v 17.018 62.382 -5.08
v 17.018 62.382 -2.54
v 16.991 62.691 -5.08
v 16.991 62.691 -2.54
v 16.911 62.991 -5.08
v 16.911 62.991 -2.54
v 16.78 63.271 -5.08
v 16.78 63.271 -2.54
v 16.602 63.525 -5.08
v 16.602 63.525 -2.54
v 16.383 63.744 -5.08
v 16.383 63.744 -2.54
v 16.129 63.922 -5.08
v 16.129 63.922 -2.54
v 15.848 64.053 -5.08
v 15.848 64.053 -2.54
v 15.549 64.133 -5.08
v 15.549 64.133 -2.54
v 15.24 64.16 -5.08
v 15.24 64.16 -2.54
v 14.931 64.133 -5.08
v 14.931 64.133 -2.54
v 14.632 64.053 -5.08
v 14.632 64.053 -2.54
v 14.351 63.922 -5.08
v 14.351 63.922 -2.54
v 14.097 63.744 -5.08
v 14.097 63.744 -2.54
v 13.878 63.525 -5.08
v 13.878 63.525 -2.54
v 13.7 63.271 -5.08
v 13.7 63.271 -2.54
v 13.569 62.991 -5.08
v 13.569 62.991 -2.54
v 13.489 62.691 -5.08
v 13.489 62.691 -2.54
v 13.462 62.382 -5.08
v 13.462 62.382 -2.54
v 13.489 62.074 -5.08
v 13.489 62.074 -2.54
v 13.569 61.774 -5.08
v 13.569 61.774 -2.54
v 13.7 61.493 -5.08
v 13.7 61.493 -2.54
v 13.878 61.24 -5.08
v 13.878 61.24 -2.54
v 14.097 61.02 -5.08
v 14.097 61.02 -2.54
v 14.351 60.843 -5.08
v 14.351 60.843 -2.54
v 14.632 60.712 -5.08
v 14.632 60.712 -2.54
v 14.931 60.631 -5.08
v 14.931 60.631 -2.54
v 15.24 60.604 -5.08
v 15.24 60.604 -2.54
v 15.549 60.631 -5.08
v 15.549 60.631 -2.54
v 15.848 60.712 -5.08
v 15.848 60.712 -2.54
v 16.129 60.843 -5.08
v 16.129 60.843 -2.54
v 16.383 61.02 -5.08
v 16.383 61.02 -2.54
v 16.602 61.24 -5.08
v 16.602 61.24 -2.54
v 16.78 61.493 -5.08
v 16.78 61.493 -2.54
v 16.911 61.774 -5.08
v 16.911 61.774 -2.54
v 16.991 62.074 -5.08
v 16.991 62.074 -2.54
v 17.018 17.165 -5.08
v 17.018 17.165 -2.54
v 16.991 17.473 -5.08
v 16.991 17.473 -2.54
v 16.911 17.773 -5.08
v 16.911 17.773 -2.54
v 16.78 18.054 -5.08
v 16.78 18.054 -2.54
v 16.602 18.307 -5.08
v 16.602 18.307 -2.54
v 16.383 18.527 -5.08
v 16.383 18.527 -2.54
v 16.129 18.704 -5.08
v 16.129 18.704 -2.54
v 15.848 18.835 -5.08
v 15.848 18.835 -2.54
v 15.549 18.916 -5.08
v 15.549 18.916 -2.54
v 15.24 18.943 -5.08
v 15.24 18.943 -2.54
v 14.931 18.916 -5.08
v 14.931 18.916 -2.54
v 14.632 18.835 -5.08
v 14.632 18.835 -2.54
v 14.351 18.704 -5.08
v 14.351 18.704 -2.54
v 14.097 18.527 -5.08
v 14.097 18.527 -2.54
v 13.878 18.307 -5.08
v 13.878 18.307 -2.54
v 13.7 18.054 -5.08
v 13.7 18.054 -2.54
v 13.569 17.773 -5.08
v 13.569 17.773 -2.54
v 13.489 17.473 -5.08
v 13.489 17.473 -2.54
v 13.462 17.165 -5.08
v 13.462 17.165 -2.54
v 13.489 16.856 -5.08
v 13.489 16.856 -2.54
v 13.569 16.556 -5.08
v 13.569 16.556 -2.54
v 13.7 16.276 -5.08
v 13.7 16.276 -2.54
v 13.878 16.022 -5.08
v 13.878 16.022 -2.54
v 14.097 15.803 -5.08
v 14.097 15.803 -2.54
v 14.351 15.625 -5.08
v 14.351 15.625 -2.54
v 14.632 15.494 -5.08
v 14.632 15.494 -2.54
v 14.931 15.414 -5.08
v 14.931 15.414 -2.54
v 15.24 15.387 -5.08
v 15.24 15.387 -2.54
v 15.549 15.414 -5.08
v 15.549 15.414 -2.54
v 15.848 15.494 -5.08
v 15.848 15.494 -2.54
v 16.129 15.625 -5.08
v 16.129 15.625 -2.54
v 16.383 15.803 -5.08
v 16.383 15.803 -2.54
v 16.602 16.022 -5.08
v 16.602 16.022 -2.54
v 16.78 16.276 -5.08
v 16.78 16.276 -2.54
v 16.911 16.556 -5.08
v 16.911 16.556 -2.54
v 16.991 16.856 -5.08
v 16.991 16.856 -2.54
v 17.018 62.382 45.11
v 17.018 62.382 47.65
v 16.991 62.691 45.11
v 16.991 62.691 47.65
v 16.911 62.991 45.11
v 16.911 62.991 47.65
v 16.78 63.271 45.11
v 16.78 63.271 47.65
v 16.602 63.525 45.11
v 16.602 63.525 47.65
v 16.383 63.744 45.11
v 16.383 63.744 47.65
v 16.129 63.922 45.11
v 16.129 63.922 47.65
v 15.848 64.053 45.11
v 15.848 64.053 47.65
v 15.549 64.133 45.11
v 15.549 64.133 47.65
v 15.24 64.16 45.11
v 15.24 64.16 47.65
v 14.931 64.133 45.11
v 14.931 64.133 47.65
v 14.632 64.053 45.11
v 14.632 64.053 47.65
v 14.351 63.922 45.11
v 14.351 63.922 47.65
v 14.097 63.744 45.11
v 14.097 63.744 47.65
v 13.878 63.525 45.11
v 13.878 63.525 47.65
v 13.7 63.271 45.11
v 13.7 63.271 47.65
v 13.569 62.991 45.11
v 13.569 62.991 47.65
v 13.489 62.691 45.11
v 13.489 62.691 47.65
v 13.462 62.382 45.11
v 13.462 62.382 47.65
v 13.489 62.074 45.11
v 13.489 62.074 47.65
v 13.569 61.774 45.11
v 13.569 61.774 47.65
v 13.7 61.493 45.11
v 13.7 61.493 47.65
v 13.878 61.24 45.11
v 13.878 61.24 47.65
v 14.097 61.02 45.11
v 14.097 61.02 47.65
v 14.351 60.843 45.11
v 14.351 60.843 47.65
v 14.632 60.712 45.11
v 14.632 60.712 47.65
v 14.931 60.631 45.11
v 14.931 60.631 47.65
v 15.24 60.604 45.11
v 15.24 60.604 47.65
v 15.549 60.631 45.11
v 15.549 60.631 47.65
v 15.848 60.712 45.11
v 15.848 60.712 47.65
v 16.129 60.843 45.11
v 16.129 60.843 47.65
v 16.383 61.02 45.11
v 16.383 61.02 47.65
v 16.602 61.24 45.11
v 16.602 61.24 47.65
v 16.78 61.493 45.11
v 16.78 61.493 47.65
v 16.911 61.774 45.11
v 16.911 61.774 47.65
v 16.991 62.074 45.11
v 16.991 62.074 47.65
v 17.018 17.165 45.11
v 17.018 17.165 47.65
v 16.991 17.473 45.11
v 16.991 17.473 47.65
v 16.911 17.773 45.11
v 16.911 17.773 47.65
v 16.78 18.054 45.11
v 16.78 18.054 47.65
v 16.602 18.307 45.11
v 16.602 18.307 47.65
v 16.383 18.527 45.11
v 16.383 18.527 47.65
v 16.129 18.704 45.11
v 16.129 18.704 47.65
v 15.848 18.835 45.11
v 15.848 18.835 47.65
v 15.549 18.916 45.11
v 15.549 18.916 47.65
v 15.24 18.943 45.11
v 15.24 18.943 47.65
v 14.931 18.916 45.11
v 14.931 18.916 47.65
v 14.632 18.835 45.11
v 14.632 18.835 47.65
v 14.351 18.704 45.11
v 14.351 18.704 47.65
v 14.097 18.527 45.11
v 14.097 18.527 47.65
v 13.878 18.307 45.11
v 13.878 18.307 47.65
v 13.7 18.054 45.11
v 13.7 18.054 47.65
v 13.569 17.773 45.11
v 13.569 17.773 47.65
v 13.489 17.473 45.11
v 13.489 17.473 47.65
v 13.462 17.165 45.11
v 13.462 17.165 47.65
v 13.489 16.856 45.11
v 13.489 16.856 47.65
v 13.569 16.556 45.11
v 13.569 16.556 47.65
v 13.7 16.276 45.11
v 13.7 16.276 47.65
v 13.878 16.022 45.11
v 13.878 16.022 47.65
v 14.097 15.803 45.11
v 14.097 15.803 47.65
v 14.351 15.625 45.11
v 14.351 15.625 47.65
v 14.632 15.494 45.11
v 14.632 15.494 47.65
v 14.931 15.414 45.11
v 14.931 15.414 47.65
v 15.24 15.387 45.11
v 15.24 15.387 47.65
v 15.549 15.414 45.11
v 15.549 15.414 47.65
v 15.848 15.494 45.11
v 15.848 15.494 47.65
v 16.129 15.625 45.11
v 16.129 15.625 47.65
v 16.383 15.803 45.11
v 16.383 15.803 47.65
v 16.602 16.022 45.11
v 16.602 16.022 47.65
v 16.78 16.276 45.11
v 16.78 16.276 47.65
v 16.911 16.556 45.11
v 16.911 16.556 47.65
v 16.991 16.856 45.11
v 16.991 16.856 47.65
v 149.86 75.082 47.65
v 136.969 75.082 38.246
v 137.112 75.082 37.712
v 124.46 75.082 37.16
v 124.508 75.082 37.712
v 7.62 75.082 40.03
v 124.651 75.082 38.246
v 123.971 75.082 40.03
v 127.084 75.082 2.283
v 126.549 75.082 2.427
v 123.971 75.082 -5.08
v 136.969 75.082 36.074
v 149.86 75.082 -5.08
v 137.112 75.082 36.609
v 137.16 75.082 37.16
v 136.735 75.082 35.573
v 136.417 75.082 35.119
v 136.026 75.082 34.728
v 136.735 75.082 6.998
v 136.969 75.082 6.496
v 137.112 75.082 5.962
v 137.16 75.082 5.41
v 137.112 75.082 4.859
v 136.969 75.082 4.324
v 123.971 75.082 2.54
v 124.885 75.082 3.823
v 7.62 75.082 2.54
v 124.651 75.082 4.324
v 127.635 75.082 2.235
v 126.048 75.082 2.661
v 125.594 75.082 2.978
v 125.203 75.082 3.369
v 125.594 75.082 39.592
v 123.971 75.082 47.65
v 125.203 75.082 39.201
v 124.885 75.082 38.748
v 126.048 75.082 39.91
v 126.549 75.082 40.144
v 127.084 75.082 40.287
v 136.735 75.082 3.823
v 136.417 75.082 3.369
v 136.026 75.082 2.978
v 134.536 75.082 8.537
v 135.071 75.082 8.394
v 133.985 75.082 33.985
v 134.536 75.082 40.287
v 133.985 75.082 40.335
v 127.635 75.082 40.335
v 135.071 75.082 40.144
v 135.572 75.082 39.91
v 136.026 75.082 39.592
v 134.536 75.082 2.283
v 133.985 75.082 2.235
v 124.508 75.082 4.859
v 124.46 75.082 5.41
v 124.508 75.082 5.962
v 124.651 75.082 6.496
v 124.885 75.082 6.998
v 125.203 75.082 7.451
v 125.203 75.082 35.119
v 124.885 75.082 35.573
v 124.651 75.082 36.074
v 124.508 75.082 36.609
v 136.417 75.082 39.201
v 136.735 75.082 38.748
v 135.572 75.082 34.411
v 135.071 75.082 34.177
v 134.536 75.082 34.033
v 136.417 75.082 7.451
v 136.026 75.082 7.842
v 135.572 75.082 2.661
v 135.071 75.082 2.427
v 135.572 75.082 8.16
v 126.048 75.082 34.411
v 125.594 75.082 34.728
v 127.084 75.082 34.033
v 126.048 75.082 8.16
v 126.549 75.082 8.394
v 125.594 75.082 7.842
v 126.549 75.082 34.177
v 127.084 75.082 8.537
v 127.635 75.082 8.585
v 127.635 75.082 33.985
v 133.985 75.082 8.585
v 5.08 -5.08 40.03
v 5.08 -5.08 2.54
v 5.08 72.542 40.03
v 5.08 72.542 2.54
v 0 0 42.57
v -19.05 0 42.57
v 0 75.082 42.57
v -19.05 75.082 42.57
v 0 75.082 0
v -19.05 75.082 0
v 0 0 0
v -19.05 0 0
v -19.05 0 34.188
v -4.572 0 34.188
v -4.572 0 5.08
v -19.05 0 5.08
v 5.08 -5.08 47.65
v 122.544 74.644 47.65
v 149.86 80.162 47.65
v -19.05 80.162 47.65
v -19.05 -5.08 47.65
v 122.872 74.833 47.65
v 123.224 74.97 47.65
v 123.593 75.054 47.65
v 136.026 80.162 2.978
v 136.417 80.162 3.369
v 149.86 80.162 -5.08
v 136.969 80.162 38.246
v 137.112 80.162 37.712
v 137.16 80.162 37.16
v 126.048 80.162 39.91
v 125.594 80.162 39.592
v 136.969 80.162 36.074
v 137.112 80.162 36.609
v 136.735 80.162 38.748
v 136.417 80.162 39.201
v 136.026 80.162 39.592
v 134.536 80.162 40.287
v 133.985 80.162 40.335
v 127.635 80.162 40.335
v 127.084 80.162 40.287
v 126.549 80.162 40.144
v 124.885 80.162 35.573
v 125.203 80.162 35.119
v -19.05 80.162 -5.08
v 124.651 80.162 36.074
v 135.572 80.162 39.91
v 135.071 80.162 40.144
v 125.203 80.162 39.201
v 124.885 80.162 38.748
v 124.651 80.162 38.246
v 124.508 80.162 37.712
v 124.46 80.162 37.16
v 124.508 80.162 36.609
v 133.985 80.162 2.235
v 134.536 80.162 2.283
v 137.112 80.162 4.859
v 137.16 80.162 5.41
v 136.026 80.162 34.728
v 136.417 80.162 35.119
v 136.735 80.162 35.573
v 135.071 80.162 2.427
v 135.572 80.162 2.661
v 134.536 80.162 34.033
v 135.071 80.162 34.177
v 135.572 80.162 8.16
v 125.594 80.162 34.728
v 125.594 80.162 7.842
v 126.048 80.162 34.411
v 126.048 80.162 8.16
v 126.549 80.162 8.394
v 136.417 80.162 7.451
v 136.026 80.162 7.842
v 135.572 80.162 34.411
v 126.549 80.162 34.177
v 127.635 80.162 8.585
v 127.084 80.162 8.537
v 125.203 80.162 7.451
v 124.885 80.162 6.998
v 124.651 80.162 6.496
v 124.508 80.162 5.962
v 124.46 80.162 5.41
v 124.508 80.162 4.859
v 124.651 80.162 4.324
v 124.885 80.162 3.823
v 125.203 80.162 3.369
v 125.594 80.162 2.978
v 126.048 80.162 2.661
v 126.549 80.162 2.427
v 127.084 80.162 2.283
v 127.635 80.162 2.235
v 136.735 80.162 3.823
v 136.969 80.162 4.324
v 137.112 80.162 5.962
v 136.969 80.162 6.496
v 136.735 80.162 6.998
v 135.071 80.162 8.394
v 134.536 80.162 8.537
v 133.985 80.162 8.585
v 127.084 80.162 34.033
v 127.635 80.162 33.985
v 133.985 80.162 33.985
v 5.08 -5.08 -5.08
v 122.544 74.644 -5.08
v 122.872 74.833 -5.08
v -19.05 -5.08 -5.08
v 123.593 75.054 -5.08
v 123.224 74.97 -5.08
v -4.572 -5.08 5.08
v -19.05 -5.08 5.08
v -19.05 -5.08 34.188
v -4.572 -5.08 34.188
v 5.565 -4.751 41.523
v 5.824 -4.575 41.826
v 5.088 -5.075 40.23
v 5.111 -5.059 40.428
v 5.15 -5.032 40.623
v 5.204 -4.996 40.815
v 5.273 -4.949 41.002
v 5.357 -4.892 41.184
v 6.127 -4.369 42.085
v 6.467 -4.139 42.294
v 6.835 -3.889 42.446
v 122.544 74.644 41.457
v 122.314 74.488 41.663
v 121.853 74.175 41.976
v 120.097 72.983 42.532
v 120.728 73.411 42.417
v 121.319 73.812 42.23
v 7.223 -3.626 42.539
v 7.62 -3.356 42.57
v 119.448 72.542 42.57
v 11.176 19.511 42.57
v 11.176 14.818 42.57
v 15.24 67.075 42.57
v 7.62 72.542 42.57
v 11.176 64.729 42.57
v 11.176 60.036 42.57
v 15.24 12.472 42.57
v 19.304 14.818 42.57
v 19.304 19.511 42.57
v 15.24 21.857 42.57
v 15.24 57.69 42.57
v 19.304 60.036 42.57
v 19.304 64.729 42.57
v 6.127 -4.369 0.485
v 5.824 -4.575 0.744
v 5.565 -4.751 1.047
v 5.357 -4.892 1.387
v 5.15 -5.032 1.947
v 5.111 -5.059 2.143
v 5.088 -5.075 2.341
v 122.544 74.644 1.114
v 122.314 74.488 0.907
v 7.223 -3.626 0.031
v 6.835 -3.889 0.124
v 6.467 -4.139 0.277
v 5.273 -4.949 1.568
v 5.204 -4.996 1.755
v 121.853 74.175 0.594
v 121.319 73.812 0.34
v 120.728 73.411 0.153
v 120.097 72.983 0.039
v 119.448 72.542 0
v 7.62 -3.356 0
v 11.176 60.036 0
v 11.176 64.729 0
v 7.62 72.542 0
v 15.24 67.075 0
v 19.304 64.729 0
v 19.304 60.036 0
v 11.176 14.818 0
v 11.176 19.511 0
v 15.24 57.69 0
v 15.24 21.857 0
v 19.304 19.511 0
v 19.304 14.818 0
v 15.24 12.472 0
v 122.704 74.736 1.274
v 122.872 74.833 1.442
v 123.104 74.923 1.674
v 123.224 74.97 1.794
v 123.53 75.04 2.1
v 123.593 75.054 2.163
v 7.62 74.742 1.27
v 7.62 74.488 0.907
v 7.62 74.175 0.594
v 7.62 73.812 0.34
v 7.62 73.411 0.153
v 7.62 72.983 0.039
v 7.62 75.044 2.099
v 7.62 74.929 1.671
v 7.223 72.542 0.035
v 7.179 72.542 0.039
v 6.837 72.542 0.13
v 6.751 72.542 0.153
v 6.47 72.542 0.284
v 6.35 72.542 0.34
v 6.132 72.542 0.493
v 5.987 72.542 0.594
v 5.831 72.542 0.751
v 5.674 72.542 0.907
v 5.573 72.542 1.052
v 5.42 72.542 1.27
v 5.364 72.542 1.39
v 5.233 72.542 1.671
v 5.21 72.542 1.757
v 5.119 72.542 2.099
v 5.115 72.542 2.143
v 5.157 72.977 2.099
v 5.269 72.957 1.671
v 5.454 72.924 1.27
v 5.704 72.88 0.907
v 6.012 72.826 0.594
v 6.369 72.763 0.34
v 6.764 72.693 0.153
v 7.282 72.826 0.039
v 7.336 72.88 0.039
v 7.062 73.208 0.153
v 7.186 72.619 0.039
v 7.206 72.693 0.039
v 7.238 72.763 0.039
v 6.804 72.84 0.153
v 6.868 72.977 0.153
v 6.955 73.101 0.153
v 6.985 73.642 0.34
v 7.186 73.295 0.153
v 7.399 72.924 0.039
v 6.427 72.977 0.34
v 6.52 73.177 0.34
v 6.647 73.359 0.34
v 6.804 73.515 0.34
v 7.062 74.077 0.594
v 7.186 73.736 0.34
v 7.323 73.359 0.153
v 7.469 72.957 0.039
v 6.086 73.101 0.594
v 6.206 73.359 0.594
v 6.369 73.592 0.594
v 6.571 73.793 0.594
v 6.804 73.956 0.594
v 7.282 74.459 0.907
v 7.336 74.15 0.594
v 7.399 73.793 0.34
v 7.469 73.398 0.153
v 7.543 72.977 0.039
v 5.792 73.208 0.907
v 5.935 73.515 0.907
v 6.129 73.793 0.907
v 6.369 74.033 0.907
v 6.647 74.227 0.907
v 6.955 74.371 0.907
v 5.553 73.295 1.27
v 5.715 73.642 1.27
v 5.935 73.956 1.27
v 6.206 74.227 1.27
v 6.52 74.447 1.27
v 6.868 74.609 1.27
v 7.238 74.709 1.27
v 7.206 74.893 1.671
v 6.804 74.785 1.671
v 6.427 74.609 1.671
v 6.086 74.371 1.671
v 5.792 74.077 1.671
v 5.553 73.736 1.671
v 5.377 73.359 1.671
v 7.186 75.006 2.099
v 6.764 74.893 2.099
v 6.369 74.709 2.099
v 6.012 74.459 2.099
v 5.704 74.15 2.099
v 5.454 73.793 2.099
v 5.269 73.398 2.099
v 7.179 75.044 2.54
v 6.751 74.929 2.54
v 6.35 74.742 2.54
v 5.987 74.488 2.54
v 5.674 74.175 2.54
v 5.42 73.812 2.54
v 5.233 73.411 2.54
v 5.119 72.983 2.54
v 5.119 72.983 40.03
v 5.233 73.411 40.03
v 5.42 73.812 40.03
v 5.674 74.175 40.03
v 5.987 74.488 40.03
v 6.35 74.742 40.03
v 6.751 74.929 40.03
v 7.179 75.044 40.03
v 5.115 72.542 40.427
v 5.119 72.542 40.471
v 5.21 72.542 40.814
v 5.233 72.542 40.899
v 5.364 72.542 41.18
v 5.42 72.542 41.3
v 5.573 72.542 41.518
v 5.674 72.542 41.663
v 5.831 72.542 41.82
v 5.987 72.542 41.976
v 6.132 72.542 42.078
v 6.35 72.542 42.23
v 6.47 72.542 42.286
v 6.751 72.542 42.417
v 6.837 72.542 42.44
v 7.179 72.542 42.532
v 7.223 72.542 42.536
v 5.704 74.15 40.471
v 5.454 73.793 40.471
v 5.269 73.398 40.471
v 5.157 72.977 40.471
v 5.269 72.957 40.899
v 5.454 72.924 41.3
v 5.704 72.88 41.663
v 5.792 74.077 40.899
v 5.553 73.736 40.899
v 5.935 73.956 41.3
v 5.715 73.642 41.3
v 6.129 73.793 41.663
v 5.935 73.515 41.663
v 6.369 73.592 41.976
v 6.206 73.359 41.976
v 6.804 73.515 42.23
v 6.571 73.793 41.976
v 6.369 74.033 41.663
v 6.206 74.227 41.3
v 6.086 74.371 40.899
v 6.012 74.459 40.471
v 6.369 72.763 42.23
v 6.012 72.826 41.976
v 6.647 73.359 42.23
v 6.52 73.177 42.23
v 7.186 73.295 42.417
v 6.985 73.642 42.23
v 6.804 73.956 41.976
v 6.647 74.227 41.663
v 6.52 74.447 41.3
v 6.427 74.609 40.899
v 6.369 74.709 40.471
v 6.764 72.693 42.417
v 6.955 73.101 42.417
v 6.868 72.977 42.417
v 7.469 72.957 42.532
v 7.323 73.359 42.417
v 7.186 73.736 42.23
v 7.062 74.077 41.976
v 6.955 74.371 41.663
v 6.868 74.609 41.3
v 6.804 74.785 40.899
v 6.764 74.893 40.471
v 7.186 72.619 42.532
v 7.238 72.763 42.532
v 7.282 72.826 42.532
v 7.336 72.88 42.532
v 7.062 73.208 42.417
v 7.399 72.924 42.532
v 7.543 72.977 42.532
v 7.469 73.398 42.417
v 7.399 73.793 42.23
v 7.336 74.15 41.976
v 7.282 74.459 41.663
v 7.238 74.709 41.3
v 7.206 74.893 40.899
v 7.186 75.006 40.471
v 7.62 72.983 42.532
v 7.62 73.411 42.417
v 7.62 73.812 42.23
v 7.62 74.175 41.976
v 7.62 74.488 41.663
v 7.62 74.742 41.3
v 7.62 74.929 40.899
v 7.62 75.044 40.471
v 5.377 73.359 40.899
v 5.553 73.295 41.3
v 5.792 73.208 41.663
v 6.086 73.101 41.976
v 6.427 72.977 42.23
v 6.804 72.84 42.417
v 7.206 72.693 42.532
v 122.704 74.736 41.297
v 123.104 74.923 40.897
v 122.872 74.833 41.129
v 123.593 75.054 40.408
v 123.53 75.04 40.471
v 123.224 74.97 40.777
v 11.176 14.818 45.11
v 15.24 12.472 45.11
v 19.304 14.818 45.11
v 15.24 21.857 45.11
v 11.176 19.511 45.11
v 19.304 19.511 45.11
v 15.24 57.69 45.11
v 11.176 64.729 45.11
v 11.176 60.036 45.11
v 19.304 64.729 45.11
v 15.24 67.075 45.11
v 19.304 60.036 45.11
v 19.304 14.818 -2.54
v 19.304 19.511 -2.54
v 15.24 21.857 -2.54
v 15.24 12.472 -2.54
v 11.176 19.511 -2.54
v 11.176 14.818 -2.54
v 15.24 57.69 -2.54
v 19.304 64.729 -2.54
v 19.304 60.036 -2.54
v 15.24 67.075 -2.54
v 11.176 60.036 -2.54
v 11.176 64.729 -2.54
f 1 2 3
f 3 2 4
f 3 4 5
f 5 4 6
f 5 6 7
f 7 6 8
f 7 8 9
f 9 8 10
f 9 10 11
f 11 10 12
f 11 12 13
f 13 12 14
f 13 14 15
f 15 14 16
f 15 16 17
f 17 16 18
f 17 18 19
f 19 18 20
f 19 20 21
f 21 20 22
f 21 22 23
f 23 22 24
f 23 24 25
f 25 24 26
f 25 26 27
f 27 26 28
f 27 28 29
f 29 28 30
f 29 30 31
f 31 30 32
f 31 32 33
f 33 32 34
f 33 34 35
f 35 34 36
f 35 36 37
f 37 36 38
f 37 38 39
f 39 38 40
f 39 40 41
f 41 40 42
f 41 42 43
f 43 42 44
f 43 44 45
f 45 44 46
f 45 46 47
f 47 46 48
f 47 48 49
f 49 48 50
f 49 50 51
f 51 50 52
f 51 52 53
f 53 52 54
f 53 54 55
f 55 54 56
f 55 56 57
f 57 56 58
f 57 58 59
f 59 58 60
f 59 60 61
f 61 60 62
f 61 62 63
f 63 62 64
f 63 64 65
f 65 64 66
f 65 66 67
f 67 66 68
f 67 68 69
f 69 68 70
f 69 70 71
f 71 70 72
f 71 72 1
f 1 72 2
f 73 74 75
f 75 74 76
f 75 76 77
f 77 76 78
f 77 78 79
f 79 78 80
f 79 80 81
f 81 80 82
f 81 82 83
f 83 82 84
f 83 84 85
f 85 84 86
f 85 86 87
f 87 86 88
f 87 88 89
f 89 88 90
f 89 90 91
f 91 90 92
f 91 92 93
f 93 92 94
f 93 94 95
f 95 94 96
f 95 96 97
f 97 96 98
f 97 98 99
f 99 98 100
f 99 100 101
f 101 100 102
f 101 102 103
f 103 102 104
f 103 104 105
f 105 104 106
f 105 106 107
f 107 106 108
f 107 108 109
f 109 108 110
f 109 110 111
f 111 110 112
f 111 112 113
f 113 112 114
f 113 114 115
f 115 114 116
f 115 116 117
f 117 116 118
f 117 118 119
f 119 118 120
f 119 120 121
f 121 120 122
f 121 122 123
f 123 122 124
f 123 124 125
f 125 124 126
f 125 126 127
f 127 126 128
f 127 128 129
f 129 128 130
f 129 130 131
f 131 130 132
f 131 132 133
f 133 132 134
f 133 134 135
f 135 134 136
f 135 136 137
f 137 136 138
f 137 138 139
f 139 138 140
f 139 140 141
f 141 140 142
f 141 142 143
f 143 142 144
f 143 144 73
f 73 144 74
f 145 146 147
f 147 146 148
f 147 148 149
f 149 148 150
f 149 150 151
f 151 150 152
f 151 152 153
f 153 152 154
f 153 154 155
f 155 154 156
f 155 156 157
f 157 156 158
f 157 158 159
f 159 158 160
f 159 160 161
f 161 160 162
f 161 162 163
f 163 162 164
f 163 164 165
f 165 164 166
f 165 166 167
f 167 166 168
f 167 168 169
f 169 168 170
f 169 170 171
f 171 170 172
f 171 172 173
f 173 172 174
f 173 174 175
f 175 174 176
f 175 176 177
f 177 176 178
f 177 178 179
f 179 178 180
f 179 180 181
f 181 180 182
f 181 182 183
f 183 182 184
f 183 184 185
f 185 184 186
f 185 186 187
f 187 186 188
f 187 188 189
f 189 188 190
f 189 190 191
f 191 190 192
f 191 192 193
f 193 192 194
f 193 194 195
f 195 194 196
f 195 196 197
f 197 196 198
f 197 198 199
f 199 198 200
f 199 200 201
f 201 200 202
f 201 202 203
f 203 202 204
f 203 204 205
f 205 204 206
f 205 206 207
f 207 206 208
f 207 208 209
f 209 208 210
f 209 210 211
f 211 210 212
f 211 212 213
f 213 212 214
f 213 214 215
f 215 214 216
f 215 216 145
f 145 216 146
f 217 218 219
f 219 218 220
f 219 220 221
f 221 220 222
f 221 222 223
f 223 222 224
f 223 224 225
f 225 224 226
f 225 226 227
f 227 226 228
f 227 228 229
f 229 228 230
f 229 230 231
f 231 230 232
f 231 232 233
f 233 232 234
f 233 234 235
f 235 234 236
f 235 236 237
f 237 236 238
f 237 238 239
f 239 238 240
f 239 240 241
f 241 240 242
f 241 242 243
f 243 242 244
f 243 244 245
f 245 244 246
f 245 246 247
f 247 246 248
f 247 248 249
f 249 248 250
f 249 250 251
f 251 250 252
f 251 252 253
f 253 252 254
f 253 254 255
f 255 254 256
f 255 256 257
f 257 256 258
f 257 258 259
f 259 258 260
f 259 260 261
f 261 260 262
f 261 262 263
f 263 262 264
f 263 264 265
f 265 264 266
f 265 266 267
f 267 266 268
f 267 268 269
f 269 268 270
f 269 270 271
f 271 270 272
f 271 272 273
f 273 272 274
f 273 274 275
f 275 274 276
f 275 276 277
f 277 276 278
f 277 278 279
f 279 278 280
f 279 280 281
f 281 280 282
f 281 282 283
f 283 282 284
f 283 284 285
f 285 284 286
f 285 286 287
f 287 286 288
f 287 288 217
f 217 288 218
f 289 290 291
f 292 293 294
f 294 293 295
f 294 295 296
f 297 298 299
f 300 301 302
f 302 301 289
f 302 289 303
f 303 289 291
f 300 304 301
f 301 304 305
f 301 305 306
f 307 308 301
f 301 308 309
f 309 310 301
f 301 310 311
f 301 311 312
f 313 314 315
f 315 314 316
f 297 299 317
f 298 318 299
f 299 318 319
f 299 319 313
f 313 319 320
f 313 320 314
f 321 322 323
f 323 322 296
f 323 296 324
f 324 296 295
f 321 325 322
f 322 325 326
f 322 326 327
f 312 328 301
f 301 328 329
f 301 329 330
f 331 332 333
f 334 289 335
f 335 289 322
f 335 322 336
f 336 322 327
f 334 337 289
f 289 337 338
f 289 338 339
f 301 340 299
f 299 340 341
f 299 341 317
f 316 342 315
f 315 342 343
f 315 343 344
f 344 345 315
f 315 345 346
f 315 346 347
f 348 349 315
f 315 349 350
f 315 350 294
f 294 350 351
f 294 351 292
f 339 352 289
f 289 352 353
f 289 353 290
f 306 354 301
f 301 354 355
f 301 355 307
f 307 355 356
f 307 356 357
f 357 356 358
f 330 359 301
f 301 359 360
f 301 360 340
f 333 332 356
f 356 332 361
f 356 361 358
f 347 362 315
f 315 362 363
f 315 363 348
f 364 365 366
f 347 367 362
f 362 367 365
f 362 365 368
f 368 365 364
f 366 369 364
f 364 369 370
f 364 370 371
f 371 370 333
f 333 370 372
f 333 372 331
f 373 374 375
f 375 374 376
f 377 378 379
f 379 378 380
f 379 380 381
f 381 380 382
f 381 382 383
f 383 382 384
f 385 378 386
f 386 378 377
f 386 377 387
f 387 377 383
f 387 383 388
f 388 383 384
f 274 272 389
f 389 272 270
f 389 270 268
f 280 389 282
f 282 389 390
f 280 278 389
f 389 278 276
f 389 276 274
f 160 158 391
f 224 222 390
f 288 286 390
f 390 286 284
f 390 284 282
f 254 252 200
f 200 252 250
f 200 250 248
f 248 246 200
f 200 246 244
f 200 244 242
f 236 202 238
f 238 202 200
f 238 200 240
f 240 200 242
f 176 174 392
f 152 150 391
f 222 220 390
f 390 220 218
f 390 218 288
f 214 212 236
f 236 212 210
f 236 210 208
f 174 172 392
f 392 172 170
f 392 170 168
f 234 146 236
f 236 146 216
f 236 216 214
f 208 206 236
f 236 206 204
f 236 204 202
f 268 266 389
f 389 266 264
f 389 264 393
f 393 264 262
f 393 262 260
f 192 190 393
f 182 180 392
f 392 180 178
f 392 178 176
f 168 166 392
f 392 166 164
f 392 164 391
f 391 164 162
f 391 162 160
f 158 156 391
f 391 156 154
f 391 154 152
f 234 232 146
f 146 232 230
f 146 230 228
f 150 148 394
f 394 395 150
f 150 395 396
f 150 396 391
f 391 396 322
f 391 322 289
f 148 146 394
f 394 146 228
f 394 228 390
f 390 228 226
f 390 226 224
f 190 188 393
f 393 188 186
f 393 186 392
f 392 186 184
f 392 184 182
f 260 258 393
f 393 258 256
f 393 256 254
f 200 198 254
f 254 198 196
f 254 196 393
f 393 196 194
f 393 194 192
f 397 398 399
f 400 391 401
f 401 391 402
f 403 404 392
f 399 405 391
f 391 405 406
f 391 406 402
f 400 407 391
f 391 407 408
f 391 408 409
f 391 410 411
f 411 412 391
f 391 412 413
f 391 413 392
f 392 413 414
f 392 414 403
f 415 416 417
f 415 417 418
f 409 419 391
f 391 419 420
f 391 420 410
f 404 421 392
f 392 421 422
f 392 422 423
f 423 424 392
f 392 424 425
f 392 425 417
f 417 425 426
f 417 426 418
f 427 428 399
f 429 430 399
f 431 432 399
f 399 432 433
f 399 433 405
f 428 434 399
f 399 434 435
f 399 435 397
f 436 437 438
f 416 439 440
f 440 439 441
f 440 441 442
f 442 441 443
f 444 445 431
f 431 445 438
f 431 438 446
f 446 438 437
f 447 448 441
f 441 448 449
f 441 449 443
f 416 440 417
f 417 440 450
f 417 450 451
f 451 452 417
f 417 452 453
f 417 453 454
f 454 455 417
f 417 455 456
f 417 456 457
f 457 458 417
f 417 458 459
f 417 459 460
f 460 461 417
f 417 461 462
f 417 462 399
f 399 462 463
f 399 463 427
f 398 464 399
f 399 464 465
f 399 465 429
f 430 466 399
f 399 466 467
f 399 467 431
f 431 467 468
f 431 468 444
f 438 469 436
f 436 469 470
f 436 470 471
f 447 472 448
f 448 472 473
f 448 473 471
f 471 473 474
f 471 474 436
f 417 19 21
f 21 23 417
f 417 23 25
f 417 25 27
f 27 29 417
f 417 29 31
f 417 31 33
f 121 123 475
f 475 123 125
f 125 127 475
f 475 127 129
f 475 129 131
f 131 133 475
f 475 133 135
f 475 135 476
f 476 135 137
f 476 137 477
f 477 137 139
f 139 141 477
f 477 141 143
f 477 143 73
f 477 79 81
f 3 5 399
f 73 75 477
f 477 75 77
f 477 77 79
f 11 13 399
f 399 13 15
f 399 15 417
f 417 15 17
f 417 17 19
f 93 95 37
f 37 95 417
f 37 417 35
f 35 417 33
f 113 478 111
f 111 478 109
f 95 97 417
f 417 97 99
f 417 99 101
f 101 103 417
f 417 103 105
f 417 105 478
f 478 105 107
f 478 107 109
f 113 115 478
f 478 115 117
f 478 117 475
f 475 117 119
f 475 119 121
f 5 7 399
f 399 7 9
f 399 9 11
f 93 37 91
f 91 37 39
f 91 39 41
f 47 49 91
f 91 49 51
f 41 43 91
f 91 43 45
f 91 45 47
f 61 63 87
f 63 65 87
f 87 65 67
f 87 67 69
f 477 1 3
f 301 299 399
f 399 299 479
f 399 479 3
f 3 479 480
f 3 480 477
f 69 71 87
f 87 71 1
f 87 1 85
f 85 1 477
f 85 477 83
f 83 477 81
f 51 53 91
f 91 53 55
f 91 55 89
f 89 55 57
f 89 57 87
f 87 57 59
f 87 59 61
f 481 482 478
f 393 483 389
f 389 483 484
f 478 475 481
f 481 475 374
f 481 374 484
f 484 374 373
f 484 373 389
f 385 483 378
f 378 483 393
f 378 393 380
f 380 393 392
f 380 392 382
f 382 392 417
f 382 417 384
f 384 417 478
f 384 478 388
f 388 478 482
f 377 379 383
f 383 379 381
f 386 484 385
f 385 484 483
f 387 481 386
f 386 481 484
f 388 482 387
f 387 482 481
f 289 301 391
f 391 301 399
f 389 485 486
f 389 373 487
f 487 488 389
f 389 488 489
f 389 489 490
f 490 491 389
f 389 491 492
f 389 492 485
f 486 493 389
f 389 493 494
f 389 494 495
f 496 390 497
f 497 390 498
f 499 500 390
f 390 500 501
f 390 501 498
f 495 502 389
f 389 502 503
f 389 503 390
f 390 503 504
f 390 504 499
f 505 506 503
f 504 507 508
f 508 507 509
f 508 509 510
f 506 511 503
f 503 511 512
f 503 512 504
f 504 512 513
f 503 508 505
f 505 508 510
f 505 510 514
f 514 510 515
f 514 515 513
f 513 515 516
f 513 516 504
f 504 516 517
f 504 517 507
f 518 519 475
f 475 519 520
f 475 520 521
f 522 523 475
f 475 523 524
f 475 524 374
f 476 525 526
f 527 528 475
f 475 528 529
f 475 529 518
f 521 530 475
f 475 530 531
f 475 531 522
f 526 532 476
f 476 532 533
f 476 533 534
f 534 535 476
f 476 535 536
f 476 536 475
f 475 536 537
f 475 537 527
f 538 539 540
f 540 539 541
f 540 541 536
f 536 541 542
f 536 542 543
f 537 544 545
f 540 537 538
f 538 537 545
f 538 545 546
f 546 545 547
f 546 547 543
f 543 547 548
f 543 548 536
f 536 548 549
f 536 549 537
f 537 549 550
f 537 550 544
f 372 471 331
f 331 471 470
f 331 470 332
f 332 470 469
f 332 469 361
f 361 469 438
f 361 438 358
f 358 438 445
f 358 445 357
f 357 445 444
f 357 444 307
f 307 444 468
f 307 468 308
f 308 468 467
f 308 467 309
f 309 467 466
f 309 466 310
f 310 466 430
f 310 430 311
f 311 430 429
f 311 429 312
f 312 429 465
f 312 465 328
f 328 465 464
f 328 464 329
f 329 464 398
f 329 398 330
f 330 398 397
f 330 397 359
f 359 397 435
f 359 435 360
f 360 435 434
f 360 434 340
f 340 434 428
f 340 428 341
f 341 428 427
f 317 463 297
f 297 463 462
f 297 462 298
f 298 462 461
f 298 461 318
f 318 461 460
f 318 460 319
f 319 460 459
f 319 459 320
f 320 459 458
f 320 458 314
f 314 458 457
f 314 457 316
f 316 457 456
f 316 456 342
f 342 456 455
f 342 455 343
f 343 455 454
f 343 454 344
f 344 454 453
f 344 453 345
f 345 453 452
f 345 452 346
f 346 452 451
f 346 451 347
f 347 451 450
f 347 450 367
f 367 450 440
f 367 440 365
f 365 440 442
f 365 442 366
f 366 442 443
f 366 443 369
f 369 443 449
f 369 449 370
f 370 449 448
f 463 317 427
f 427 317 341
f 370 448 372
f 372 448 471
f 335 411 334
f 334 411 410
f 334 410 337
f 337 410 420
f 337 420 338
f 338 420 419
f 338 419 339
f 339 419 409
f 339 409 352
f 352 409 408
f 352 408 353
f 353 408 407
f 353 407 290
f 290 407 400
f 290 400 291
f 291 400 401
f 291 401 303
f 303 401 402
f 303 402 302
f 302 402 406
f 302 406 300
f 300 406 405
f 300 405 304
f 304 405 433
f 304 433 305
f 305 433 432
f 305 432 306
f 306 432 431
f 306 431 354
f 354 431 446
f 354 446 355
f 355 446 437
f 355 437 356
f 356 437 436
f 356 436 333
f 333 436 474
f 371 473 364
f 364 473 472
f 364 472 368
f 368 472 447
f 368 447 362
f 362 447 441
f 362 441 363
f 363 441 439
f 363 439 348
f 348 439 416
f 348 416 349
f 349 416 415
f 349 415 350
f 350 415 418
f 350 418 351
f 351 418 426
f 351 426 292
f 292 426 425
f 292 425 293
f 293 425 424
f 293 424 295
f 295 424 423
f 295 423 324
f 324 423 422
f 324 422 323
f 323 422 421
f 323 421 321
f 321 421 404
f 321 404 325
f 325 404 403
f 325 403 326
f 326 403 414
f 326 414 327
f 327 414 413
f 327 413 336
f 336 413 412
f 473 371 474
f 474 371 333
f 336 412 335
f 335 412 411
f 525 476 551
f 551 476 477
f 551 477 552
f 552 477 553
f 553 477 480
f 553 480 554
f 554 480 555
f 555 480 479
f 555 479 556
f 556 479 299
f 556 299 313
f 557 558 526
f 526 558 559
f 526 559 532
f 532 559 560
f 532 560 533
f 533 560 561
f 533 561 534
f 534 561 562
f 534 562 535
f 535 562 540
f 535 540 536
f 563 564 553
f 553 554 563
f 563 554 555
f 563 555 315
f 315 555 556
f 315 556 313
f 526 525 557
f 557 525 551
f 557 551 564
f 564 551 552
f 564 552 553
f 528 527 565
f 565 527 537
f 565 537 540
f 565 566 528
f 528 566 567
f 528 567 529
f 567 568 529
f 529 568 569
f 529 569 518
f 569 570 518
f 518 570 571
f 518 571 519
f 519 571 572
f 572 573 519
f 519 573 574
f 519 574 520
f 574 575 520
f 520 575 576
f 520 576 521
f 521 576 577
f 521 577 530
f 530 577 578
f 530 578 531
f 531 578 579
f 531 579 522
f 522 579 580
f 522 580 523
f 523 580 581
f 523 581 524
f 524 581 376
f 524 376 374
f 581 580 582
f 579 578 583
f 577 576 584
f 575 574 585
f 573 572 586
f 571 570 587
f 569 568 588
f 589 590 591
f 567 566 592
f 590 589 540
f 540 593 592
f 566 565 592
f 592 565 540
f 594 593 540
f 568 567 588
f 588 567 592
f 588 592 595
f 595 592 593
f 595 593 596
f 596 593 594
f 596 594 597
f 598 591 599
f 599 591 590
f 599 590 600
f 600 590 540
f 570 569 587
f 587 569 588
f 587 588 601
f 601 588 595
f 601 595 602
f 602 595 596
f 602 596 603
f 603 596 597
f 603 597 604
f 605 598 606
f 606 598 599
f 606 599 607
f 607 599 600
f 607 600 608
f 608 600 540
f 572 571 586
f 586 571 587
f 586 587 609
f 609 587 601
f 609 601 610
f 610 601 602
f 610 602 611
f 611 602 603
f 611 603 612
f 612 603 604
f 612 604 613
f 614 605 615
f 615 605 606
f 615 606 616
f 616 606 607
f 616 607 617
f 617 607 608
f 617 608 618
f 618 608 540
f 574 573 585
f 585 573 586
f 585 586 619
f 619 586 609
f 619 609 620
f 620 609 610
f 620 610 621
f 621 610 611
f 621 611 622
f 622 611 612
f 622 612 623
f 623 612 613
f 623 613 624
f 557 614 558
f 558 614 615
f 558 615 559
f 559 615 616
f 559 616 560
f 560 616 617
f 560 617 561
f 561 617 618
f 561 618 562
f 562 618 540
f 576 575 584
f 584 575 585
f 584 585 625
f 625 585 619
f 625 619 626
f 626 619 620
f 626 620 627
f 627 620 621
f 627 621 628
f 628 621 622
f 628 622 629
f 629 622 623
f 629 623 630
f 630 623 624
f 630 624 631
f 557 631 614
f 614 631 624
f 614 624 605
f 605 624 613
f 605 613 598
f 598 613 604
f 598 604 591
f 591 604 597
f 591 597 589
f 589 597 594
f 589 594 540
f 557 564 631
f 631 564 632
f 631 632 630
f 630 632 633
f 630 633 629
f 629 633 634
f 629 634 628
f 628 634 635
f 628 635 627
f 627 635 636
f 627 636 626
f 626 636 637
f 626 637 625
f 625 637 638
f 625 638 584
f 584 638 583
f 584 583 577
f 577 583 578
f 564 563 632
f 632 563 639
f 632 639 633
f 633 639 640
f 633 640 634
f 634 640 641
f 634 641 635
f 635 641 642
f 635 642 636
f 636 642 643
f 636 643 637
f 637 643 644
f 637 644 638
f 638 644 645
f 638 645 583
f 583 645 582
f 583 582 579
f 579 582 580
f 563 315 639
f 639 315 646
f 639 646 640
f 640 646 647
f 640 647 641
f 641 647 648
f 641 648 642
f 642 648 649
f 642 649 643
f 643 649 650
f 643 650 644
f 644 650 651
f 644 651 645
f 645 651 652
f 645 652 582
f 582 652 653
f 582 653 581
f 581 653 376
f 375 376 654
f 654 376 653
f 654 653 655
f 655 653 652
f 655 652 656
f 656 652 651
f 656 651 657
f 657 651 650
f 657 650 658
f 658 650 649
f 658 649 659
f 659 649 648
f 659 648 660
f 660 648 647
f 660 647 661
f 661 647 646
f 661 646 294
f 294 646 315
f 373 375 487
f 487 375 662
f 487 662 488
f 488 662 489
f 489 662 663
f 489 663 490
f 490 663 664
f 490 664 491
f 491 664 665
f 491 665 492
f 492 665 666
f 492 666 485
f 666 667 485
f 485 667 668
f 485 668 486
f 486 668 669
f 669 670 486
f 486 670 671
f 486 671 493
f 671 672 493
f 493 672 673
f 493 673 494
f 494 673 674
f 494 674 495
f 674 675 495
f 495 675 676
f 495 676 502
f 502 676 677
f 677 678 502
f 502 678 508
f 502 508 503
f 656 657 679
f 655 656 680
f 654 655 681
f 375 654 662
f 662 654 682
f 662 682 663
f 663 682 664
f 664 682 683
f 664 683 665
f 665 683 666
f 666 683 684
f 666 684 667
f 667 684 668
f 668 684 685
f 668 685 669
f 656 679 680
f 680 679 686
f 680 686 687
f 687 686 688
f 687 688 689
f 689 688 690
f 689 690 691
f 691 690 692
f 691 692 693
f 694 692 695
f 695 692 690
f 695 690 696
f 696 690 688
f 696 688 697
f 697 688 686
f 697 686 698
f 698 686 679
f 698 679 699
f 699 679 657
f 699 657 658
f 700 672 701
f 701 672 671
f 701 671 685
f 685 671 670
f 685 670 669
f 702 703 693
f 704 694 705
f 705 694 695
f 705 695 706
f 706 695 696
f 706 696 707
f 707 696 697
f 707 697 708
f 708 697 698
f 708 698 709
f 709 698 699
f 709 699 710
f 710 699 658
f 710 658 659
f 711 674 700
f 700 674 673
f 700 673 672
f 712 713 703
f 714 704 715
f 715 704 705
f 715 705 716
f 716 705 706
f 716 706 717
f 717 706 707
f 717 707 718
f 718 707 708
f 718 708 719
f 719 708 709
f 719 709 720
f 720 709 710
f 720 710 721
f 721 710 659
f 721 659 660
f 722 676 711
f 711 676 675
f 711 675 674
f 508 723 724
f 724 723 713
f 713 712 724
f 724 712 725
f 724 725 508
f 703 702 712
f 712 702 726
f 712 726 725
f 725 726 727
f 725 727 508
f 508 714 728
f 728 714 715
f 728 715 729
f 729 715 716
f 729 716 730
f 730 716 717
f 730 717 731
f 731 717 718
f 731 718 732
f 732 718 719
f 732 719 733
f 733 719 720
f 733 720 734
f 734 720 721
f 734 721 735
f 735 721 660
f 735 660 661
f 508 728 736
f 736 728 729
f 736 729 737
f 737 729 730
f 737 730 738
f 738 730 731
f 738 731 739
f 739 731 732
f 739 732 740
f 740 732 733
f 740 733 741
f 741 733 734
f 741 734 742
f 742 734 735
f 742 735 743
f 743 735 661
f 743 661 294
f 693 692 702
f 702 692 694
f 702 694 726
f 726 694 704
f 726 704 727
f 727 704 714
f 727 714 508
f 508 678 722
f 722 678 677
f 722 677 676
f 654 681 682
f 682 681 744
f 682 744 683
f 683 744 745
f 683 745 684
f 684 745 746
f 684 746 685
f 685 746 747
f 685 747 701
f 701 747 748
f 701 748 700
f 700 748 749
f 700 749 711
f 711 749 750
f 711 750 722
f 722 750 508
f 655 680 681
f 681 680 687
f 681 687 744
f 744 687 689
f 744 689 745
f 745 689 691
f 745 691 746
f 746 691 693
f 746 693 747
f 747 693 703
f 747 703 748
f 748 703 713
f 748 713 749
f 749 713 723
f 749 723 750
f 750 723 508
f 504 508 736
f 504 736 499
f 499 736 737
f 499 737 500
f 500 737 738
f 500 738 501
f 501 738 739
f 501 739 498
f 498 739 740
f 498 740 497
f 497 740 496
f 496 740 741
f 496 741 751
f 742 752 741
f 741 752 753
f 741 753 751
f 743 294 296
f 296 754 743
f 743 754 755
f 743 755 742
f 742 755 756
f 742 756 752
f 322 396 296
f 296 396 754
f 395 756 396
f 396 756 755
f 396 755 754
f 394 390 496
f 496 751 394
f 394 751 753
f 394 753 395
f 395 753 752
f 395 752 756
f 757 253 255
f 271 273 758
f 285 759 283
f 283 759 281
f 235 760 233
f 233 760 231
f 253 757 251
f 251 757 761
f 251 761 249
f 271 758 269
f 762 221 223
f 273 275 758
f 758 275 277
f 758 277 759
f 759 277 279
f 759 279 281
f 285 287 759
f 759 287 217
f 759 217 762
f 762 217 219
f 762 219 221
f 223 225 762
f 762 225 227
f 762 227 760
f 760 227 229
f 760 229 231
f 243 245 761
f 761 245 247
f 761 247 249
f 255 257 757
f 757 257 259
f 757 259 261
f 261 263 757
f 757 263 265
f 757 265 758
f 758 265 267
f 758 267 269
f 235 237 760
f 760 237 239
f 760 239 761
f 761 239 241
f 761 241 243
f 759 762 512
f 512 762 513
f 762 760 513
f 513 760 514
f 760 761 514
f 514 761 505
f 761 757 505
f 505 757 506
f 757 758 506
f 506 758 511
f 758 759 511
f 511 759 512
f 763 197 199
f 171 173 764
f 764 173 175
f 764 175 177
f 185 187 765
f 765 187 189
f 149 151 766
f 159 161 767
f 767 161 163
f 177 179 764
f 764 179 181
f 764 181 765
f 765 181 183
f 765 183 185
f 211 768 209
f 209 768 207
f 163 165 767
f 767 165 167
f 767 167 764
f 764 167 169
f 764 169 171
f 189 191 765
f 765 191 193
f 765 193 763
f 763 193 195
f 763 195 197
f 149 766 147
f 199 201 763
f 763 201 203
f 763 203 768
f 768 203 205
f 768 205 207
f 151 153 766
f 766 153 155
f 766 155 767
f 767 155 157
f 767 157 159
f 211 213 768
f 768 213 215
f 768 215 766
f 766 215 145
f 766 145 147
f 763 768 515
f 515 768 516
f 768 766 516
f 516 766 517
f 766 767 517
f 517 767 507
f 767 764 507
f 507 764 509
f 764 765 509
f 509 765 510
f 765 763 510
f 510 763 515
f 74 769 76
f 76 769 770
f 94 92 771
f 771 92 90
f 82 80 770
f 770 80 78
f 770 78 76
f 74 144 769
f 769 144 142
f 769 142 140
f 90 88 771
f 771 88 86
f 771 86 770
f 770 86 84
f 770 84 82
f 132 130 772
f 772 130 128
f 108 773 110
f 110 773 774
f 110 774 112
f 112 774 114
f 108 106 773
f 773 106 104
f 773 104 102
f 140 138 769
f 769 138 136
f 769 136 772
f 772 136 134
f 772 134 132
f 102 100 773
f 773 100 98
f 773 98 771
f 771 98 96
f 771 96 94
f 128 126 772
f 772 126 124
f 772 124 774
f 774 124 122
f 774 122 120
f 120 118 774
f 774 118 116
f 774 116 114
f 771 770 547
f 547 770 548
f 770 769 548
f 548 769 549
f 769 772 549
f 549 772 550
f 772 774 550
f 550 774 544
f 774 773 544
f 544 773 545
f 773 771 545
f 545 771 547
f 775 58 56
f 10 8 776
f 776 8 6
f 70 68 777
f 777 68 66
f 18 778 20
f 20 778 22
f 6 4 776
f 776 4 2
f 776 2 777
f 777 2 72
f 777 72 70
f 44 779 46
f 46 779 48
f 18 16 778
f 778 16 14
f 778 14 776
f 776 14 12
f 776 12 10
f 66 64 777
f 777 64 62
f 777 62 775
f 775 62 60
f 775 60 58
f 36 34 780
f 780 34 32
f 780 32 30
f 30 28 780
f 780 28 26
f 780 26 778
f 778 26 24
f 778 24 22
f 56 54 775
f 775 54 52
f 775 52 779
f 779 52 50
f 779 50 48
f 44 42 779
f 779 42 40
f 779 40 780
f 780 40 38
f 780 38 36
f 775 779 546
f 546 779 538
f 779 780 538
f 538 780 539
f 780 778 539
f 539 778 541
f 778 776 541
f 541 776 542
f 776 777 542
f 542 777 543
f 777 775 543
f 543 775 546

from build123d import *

# Parameters (mm, degrees)
SKETCH1_W                        = 42.5704
SKETCH1_H                        = 75.0824
TOUCHESLEFTSIDE_DEPTH            = 5.08
SKETCH2_W                        = 52.7304
SKETCH2_H                        = 85.2424
SKETCH2_W_2                      = 42.5704
SKETCH2_H_2                      = 75.0824
ENCLOSES_DEPTH                   = 24.13
SKETCH11_W                       = 14.478
SKETCH11_H                       = 29.1084
WIREGAP_DEPTH                    = 5.08
SKETCH6_W                        = 144.78
SKETCH6_H                        = 52.7304
HORIZONTAL_DEPTH                 = 5.08
UPPERDIAGONAL_DEPTH              = 5.08
LOWERDIAGONAL_DEPTH              = 5.08
F_10_START                       = 75.0824
F_10_0_1935_DIAMETER_SLOT1_DEPTH = 5.08
FILLET1_R                        = 2.54
CROSSBEAMSUPPORTHOLES_DEPTH      = 178.945286698
CROSSBEAMSUPPORTHOLES_DEPTH_BACK = 178.945286698
SKETCH12_R                       = 1.778
NUTEMPLACEMENTS1_DEPTH           = 2.54
NUTEMPLACEMENTS2_DEPTH           = 2.54


# Read off the part's stored shape, not the designer's step: #10 (0.1935) Diameter Slot1
with BuildPart() as part:
    # Sketch1 → TouchesLeftSide (new body)
    with BuildSketch(Plane(origin=(0, 0, 0), x_dir=(0, 0, -1), z_dir=(1, 0, 0))):
        with Locations((-21.2852, 37.5412)):
            Rectangle(SKETCH1_W, SKETCH1_H)
    extrude(amount=TOUCHESLEFTSIDE_DEPTH)

    # Sketch2 → Encloses (add)
    with BuildSketch(Plane(origin=(5.08, 0, 0), x_dir=(0, 0, -1), z_dir=(1, 0, 0))):
        with Locations((-21.2852, 37.5412)):
            Rectangle(SKETCH2_W, SKETCH2_H)
        with Locations((-21.2852, 37.5412)):
            Rectangle(SKETCH2_W_2, SKETCH2_H_2, mode=Mode.SUBTRACT)
    extrude(amount=-ENCLOSES_DEPTH)

    # Sketch11 → WireGap (cut)
    with BuildSketch(Plane(origin=(0, 0, 0), x_dir=(1, 0, 0), z_dir=(0, 1, 0))):
        with Locations((-11.811, -19.6342)):
            Rectangle(SKETCH11_W, SKETCH11_H)
    extrude(amount=-WIREGAP_DEPTH, mode=Mode.SUBTRACT)

    # Sketch6 → Horizontal (add)
    with BuildSketch(Plane(origin=(0, 80.1624, 0), x_dir=(1, 0, 0), z_dir=(0, 1, 0))):
        with Locations((77.47, -21.2852)):
            Rectangle(SKETCH6_W, SKETCH6_H)
    extrude(amount=-HORIZONTAL_DEPTH)

    # Sketch7 → UpperDiagonal (add)
    with BuildSketch(Plane.XY.offset(47.6504)):
        Polygon((5.08, -5.08), (5.08, 75.0824), (123.19, 75.0824), align=None)
    extrude(amount=-UPPERDIAGONAL_DEPTH)

    # Sketch8 → LowerDiagonal (add)
    with BuildSketch(Plane(origin=(0, 0, -5.08), x_dir=(-1, 0, 0), z_dir=(0, 0, -1))):
        Polygon((-5.08, -5.08), (-5.08, 75.0824), (-123.19, 75.0824), align=None)
    extrude(amount=-LOWERDIAGONAL_DEPTH)

    # #10 (0.1935) Diameter Slot1 outline → #10 (0.1935) Diameter Slot1 (cut)
    with BuildSketch(Plane(origin=(0, 0, 0), x_dir=(1, 0, 0), z_dir=(0, 1, 0)).offset(F_10_START)):
        with BuildLine():
            Line((127.635, -8.5852), (133.985, -8.5852))
            ThreePointArc((133.985, -8.5852), (137.16, -5.4102), (133.985, -2.2352))
            Line((133.985, -2.2352), (127.635, -2.2352))
            ThreePointArc((127.635, -2.2352), (124.46, -5.4102), (127.635, -8.5852))
        make_face()
        with BuildLine():
            Line((127.635, -40.3352), (133.985, -40.3352))
            ThreePointArc((133.985, -40.3352), (137.16, -37.1602), (133.985, -33.9852))
            Line((133.985, -33.9852), (127.635, -33.9852))
            ThreePointArc((127.635, -33.9852), (124.46, -37.1602), (127.635, -40.3352))
        make_face()
    extrude(amount=F_10_0_1935_DIAMETER_SLOT1_DEPTH, mode=Mode.SUBTRACT)

    # Fillet1
    fillet1_edges = [part.edges().sort_by_distance(p)[0] for p in [
        (123.19, 75.0824, 45.1104),
        (5.08, 35.0012, 42.5704),
        (64.135, 75.0824, 42.5704),
        (5.08, 75.0824, 21.2852),
        (64.135, 75.0824, 0),
        (123.19, 75.0824, -2.54),
        (5.08, 35.0012, 0),
    ]]
    fillet(fillet1_edges, radius=FILLET1_R)

    # Sketch12 → CrossbeamSupportHoles (cut, two sides: drawn at the far end of the back side and taken through both)
    with BuildSketch(Plane.XY.offset(47.6504).offset(-CROSSBEAMSUPPORTHOLES_DEPTH_BACK)):
        with Locations((15.24, 17.164557597)):
            Circle(SKETCH12_R)
        with Locations((15.24, 62.3824)):
            Circle(SKETCH12_R)
    extrude(amount=CROSSBEAMSUPPORTHOLES_DEPTH + CROSSBEAMSUPPORTHOLES_DEPTH_BACK, mode=Mode.SUBTRACT)

    # Sketch13 → NutEmplacements1 (cut)
    with BuildSketch(Plane(origin=(0, 0, 42.5704), x_dir=(-1, 0, 0), z_dir=(0, 0, -1))):
        Polygon((-19.304, 14.818206103), (-15.24, 12.471854609), (-11.176, 14.818206103), (-11.176, 19.510909091), (-15.24, 21.857260585), (-19.304, 19.510909091), align=None)
        Polygon((-15.24, 57.689697012), (-11.176, 60.036048506), (-11.176, 64.728751494), (-15.24, 67.075102988), (-19.304, 64.728751494), (-19.304, 60.036048506), align=None)
    extrude(amount=-NUTEMPLACEMENTS1_DEPTH, mode=Mode.SUBTRACT)

    # Sketch14 → NutEmplacements2 (cut)
    with BuildSketch(Plane.XY):
        Polygon((15.24, 21.857260585), (11.176, 19.510909091), (11.176, 14.818206103), (15.24, 12.471854609), (19.304, 14.818206103), (19.304, 19.510909091), align=None)
        Polygon((15.24, 57.689697012), (19.304, 60.036048506), (19.304, 64.728751494), (15.24, 67.075102988), (11.176, 64.728751494), (11.176, 60.036048506), align=None)
    extrude(amount=-NUTEMPLACEMENTS2_DEPTH, mode=Mode.SUBTRACT)


solid = part.part
